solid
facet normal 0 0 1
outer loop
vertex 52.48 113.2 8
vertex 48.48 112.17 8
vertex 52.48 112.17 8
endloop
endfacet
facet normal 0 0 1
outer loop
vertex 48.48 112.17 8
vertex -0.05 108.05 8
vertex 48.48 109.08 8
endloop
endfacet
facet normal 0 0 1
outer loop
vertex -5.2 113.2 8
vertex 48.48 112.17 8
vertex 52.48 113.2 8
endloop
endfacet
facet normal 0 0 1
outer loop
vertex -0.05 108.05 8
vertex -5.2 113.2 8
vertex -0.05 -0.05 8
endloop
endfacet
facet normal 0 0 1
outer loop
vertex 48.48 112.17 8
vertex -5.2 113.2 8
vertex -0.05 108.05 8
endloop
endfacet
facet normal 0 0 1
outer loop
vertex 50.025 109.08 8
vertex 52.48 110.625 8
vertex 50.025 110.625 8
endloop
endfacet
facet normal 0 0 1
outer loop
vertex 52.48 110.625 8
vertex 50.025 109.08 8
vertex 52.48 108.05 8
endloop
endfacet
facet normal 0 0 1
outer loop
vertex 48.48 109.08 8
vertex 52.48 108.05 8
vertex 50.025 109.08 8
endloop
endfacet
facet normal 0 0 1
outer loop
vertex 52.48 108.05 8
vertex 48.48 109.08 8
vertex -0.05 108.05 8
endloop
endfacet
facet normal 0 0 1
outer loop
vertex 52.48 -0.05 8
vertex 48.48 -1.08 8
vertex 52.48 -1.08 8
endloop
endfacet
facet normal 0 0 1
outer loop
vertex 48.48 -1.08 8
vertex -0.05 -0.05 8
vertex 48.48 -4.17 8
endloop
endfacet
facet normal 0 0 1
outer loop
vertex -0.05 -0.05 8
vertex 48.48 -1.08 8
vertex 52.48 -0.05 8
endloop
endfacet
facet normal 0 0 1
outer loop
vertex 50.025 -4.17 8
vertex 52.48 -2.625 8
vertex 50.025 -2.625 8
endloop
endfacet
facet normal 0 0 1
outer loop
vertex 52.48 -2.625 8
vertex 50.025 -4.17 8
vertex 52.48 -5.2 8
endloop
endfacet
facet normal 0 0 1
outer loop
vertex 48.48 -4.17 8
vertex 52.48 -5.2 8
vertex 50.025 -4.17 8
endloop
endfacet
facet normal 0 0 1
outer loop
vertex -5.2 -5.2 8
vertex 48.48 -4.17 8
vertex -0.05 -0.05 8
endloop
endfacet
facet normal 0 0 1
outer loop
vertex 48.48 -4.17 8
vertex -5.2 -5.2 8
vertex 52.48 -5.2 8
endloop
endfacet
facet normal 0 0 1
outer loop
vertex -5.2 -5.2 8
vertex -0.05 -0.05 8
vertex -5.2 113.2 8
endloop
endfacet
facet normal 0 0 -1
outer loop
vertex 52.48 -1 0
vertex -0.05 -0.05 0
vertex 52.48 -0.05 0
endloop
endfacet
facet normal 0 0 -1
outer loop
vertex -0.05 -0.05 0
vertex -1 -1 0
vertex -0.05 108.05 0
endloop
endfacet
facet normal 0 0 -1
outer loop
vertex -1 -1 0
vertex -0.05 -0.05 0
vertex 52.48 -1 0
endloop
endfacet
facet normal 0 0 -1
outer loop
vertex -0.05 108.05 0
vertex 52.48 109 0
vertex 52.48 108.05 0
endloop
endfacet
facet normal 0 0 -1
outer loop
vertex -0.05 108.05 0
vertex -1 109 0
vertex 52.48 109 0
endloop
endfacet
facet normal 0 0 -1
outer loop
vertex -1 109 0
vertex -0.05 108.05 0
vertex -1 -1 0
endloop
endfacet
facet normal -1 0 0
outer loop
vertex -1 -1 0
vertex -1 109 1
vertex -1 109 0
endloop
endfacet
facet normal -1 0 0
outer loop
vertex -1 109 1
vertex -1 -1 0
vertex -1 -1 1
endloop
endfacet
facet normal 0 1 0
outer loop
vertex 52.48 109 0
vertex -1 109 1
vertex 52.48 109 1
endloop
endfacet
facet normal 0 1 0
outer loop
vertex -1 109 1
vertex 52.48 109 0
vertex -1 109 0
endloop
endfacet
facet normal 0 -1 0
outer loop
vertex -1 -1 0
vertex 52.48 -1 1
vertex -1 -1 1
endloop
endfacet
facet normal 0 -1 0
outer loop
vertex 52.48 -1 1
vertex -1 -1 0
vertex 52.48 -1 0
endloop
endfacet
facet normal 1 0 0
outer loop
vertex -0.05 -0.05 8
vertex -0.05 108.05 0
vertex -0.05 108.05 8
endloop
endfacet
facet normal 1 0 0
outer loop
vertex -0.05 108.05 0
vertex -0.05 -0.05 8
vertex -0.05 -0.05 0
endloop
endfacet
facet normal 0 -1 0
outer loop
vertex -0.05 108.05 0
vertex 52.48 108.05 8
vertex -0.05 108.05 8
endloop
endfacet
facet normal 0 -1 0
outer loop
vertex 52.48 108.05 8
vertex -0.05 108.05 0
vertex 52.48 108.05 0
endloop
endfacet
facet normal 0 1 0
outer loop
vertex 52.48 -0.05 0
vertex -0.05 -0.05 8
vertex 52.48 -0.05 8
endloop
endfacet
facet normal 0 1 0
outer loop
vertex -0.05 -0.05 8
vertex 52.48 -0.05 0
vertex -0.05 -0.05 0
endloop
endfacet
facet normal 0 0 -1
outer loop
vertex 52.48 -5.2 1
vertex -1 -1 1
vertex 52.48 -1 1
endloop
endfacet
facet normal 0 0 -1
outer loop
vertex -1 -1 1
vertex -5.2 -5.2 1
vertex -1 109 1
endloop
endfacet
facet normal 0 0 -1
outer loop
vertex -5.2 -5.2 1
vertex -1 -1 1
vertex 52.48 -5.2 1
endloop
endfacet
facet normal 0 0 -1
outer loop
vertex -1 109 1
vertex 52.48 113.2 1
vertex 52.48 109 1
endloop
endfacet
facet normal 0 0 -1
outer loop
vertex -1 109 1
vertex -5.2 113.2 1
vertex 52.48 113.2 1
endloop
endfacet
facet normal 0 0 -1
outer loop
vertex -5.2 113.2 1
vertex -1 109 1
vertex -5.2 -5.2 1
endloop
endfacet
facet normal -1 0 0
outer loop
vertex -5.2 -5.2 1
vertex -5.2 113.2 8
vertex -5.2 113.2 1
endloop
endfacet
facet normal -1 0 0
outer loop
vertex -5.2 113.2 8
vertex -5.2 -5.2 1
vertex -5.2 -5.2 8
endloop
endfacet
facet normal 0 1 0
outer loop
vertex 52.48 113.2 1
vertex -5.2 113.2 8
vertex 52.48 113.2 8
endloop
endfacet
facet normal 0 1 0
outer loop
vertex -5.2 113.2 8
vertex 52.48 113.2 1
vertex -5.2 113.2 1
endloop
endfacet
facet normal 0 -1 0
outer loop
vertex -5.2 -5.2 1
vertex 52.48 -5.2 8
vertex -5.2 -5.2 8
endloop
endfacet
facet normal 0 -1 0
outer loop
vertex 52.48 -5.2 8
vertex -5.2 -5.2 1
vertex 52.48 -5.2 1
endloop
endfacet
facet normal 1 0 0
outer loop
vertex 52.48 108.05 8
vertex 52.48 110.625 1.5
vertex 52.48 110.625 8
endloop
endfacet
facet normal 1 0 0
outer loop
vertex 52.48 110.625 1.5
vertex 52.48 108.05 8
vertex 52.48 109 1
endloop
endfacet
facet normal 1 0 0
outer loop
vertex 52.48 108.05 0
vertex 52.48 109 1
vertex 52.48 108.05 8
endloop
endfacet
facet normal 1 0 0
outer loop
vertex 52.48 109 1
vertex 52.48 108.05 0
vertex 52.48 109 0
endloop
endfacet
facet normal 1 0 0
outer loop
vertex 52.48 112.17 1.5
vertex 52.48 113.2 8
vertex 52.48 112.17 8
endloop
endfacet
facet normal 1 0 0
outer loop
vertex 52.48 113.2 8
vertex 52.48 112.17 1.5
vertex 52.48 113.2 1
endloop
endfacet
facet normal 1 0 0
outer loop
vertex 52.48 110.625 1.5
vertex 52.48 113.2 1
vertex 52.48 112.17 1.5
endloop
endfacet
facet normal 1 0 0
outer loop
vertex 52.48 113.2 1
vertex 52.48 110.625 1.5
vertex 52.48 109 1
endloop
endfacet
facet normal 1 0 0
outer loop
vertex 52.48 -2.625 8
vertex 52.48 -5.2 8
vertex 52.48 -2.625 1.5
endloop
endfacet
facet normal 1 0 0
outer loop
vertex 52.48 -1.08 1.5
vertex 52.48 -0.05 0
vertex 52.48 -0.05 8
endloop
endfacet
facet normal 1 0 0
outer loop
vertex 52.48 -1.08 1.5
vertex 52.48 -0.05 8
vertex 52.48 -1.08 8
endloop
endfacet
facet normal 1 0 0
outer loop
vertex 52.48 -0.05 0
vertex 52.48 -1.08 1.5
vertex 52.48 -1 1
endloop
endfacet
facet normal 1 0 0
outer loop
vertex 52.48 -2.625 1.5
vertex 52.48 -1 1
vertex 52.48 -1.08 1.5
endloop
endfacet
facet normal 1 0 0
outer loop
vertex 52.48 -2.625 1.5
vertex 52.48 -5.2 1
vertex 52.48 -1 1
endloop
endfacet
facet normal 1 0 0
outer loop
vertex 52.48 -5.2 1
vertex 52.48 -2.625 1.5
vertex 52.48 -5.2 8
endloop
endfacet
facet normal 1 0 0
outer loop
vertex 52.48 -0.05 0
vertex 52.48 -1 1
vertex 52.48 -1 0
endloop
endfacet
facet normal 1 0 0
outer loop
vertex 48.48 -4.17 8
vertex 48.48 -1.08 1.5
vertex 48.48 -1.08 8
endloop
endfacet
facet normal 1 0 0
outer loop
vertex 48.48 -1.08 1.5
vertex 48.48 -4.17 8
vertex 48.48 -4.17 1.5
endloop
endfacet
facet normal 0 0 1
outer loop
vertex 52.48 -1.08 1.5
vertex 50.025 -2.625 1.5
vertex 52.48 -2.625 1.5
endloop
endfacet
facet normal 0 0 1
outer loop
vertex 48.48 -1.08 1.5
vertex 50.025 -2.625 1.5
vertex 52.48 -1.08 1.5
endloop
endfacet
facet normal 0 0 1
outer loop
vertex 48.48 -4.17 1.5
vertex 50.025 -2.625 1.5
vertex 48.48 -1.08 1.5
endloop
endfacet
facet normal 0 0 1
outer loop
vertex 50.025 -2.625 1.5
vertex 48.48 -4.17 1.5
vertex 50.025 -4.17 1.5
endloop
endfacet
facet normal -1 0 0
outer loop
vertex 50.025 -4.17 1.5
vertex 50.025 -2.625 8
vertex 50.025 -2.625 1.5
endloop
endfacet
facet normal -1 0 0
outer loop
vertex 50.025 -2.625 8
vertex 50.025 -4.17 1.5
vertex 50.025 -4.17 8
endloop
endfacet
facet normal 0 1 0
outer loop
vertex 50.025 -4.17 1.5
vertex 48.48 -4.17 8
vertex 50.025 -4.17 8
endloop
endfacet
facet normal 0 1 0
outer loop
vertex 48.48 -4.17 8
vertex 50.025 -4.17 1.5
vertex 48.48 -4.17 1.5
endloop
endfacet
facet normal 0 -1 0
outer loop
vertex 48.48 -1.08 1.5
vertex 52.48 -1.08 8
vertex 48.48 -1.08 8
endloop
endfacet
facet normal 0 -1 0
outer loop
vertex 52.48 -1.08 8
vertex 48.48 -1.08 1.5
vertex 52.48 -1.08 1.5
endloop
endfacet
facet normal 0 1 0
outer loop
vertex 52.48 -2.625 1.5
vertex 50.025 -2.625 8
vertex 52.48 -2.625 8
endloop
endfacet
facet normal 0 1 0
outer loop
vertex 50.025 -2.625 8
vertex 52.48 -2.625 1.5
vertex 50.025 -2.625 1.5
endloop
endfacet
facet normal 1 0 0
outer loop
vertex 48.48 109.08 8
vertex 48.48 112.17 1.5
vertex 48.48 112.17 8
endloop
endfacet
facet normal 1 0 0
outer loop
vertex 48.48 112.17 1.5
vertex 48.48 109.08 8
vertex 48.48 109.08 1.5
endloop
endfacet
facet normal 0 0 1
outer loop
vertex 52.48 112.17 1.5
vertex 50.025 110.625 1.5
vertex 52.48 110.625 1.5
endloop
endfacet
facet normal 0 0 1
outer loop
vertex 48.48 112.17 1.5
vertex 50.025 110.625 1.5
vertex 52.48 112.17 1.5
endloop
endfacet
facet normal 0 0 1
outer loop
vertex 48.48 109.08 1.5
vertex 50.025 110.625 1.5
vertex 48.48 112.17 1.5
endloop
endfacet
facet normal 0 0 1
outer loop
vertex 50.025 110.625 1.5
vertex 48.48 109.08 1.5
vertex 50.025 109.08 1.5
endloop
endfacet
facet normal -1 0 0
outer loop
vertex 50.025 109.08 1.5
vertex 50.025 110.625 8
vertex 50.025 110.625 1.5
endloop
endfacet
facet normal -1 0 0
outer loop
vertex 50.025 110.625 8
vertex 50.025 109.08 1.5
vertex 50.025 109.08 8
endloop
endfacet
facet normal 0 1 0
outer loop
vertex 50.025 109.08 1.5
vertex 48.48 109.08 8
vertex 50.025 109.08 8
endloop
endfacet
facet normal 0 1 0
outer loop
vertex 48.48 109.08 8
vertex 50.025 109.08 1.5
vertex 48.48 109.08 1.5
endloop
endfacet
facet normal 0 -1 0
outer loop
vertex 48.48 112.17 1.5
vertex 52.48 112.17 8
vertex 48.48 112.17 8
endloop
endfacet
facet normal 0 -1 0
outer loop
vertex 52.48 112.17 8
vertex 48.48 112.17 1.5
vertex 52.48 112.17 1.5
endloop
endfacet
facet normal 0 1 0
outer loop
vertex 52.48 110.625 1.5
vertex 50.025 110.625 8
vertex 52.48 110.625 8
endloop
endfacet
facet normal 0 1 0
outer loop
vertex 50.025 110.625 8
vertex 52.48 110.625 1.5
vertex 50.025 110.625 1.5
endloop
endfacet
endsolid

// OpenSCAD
// Generated by SolidPython 1.0.4 on 2021-07-12 16:52:29


difference() {
	difference() {
		difference() {
			union() {
				difference() {
					translate(v = [-1.0000000000, -1.0000000000, 0]) {
						cube(size = [74.0000000000, 110.0000000000, 8]);
					}
					translate(v = [-0.0500000000, -0.0500000000, 0]) {
						cube(size = [72.1000000000, 108.1000000000, 8]);
					}
				}
				translate(v = [0, 0, 1]) {
					difference() {
						translate(v = [-5.2000000000, -5.2000000000, 0]) {
							cube(size = [82.4000000000, 118.4000000000, 7]);
						}
						translate(v = [-1.0000000000, -1.0000000000, 0]) {
							cube(size = [74.0000000000, 110.0000000000, 7]);
						}
					}
				}
			}
			translate(v = [52.4800000000, -5.2000000000, 0]) {
				cube(size = [24.7200000000, 118.4000000000, 8]);
			}
		}
		translate(v = [48.4800000000, -4.1700000000, 0]) {
			translate(v = [0, 0, 1.5000000000]) {
				translate(v = [4, 3.0900000000, 0]) {
					rotate(a = -180) {
						union() {
							translate(v = [2.4550000000, 0, 0]) {
								cube(size = [1.5450000000, 3.0900000000, 6.5000000000]);
							}
							cube(size = [4, 1.5450000000, 6.5000000000]);
						}
					}
				}
			}
		}
	}
	translate(v = [48.4800000000, 109.0800000000, 0]) {
		translate(v = [0, 0, 1.5000000000]) {
			translate(v = [4, 3.0900000000, 0]) {
				rotate(a = -180) {
					union() {
						translate(v = [2.4550000000, 0, 0]) {
							cube(size = [1.5450000000, 3.0900000000, 6.5000000000]);
						}
						cube(size = [4, 1.5450000000, 6.5000000000]);
					}
				}
			}
		}
	}
}
